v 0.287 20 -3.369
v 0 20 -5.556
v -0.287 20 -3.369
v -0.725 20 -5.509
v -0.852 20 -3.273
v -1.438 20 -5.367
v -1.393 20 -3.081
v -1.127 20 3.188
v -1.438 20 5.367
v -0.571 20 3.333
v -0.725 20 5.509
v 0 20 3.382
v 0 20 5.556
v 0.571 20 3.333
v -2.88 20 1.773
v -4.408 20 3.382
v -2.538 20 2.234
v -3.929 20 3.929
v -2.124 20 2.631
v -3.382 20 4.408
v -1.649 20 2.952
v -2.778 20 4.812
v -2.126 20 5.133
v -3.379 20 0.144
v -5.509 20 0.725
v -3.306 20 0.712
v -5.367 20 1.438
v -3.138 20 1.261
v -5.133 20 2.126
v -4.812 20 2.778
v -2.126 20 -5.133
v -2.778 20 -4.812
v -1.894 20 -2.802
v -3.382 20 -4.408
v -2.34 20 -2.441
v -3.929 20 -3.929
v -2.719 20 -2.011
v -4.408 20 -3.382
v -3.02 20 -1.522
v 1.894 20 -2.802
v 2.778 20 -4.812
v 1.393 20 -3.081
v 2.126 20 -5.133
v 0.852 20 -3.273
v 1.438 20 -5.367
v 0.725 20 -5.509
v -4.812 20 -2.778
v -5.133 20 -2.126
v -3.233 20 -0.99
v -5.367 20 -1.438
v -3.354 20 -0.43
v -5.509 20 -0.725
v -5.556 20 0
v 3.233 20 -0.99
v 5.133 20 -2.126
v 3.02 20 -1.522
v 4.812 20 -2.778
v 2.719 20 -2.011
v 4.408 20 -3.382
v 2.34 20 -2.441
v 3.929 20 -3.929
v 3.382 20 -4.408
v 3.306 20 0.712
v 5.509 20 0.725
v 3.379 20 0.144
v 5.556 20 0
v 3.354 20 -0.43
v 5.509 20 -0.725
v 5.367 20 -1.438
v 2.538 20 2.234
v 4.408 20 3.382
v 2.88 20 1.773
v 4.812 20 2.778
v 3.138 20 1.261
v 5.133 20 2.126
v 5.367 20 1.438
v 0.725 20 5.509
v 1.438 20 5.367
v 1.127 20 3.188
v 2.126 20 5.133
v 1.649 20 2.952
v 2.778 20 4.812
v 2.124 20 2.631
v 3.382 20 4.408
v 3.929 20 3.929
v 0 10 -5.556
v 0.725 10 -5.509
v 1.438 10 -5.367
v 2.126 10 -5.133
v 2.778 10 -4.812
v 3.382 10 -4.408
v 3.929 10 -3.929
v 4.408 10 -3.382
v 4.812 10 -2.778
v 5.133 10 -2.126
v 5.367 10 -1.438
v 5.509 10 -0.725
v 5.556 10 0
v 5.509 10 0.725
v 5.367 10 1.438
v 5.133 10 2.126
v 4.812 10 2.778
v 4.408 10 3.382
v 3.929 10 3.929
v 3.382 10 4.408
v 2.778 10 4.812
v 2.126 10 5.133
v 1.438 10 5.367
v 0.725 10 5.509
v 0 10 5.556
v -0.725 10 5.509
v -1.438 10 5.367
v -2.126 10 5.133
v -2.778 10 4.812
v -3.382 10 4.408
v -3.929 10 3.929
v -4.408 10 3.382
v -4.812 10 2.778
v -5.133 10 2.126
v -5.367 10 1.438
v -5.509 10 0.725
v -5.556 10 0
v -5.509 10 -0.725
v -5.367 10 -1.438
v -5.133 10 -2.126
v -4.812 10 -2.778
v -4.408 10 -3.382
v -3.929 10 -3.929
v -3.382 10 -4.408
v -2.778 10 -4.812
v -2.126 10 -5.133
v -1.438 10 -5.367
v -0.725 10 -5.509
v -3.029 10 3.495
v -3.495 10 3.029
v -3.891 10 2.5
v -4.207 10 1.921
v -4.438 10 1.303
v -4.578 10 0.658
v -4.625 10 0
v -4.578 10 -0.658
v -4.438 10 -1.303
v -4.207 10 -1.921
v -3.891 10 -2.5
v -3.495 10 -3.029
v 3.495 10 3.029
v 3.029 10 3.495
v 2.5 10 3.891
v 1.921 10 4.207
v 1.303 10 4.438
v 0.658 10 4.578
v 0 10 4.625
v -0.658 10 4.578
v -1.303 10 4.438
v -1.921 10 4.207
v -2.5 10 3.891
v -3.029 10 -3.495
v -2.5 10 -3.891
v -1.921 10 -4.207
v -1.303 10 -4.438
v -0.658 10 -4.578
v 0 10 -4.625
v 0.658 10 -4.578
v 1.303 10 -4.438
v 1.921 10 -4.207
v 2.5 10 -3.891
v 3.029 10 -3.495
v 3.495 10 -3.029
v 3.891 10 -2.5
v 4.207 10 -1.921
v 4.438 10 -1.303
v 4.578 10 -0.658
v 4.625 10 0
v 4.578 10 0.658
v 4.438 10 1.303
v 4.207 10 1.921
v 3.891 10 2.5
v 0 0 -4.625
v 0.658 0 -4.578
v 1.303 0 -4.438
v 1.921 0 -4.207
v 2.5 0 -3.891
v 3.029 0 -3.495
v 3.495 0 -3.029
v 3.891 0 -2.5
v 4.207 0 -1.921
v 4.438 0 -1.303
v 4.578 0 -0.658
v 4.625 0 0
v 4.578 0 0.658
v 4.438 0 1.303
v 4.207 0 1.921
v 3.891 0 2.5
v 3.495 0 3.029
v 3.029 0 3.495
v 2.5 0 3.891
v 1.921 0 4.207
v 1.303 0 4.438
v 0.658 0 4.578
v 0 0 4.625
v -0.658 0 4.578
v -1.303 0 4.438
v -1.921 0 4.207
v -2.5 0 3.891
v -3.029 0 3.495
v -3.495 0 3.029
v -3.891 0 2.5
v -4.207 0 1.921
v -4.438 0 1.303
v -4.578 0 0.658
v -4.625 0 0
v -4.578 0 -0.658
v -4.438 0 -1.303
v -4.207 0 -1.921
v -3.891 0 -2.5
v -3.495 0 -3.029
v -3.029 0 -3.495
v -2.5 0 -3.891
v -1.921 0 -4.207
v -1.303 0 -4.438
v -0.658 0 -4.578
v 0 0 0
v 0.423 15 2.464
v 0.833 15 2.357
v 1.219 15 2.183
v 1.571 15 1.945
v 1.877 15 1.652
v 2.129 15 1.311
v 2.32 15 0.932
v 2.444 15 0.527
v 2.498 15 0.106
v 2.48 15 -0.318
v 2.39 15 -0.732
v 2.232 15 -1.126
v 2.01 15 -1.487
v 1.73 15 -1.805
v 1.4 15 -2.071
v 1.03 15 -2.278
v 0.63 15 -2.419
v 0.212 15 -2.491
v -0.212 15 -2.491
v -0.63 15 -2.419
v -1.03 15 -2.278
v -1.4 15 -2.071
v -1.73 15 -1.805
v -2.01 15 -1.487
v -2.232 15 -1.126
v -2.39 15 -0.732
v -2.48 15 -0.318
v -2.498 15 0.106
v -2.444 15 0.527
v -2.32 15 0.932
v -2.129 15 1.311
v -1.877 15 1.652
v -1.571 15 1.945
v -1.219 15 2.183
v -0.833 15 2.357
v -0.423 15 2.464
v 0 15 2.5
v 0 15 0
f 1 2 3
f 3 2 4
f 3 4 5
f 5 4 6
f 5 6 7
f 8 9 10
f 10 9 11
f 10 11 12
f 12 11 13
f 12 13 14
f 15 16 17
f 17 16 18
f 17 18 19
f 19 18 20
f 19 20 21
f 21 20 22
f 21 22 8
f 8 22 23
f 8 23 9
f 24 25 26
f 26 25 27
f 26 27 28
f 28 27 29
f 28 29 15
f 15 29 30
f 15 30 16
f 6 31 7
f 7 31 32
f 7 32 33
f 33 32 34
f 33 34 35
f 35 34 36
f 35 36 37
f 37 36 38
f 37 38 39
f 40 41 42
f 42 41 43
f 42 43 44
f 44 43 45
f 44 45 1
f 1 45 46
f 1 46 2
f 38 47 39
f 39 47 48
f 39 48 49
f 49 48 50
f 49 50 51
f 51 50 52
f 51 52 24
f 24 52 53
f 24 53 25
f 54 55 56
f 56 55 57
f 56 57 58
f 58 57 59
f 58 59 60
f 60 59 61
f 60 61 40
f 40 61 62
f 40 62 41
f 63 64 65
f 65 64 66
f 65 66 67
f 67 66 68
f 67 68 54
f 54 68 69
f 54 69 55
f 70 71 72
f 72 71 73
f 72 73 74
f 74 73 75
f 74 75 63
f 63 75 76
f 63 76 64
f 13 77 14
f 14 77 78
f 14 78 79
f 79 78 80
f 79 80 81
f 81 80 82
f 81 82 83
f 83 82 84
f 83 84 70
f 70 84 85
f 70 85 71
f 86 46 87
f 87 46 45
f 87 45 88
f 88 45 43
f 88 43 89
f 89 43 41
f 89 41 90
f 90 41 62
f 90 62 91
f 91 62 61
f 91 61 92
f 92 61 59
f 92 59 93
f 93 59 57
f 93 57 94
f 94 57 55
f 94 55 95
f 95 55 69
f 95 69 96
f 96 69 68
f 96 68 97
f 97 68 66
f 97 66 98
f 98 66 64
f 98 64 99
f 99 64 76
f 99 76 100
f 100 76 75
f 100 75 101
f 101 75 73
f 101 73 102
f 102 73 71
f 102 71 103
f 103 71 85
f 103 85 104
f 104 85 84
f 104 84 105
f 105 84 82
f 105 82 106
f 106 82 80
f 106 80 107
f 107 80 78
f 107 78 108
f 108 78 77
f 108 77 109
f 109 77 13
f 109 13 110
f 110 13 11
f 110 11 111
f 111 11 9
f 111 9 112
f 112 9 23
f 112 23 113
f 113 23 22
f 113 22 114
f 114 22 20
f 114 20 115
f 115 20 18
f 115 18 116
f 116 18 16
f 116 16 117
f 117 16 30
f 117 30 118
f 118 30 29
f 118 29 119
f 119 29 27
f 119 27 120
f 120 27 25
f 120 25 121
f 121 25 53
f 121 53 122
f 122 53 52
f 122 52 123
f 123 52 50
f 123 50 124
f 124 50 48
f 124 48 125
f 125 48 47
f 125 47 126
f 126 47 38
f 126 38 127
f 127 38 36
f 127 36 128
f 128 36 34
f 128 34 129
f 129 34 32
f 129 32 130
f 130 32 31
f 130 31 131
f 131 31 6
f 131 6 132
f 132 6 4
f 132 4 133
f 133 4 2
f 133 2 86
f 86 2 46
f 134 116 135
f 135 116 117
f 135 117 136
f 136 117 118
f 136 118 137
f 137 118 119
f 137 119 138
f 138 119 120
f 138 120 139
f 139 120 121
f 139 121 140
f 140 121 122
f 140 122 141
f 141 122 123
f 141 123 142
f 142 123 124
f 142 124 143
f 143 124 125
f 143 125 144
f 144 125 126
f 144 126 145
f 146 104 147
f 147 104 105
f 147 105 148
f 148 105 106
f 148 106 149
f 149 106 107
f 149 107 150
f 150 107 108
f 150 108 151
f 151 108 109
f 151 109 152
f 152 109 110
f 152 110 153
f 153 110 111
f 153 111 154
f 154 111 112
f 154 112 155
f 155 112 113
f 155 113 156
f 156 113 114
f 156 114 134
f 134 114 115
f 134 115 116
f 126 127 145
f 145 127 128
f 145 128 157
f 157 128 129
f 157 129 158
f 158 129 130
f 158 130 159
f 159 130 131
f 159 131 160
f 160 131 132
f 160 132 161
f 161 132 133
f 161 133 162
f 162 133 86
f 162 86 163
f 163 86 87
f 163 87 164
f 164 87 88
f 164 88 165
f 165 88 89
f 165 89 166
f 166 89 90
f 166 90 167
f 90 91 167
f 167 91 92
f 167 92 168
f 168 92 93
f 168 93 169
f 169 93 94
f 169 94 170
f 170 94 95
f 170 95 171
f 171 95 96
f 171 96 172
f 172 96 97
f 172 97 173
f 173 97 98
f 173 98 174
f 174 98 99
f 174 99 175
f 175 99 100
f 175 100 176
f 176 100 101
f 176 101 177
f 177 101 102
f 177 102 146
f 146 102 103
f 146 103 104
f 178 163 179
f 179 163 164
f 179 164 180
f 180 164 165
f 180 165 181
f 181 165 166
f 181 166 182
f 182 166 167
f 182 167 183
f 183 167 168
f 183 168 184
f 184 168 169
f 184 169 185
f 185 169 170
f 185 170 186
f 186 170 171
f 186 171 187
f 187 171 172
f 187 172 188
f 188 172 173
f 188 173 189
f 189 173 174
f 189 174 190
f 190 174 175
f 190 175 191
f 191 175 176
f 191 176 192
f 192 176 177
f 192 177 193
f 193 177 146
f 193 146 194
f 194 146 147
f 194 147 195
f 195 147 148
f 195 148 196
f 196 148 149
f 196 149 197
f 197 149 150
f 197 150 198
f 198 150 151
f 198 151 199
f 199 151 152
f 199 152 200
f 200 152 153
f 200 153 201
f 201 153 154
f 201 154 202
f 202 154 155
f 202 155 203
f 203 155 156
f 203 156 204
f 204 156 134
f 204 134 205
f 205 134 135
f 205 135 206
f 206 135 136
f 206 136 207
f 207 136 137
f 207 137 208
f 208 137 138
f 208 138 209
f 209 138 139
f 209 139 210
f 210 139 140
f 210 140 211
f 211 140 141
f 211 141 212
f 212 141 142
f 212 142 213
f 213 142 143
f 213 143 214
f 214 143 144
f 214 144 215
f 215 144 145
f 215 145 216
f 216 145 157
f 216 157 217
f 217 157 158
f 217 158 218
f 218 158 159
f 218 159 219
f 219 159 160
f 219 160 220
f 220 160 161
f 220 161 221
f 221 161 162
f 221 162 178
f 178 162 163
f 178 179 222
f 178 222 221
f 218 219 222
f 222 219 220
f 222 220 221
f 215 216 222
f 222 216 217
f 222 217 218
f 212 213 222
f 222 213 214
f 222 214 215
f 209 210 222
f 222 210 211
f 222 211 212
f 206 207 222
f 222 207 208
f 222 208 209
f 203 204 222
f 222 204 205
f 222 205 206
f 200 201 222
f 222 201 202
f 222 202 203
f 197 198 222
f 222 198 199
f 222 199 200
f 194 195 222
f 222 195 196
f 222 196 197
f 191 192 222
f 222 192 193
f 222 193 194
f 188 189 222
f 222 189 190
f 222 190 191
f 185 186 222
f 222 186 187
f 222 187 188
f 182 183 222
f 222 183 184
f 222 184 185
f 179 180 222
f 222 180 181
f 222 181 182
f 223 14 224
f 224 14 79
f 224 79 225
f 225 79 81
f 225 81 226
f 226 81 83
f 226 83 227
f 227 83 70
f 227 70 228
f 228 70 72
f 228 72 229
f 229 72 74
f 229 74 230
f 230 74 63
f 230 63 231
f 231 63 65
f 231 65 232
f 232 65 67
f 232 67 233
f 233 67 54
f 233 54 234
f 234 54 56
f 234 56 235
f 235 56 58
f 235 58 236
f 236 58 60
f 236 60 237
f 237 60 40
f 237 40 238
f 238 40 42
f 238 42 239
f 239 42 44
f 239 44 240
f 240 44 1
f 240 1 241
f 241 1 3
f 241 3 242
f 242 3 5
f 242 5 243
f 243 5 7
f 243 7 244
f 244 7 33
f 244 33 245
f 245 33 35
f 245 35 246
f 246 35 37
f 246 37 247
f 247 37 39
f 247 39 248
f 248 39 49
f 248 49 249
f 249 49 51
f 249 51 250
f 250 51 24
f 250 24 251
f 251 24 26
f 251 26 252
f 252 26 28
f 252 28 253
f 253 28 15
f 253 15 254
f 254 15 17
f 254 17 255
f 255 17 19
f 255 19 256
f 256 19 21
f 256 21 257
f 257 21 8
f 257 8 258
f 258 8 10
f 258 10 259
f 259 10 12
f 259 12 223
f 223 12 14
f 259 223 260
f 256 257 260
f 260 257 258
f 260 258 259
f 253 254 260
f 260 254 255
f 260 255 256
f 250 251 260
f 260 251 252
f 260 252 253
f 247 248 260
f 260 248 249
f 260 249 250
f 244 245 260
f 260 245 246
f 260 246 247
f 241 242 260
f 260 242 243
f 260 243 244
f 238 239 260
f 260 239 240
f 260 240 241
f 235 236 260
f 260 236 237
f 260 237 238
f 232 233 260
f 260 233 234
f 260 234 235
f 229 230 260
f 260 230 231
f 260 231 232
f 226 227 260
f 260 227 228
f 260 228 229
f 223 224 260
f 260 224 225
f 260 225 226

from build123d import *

# Parameters (mm, degrees)
SKETCH2_R          = 2.5
CUT_EXTRUDE1_DEPTH = 5
DRAFT1_ANGLE       = 10


with BuildPart() as part:
    # Sketch1 → Revolve1 (revolve)
    with BuildSketch(Plane.XY, mode=Mode.PRIVATE) as revolve1_sk:
        Polygon((0, 20), (5.55625, 20), (5.55625, 10), (4.625, 10), (4.625, 0), (0, 0), align=None)
    revolve(revolve1_sk.sketch.rotate(Axis((0, 0, 0), (0, 1, 0)), 90), axis=Axis((0, 0, 0), (0, 1, 0)))

    # Sketch2 → Cut-Extrude1 (cut)
    with BuildSketch(Plane(origin=(0, 20, 0), x_dir=(1, 0, 0), z_dir=(0, 1, 0))):
        with Locations(Location((0, 0, 0), (0, 0, 270))):
            Circle(SKETCH2_R)
    extrude(amount=-CUT_EXTRUDE1_DEPTH, mode=Mode.SUBTRACT)

    # Draft1
    draft1_faces = [part.faces().sort_by_distance(p)[0] for p in [
        (0, 17.5, -2.5),
    ]]
    draft(draft1_faces, Plane.ZX.offset(15), DRAFT1_ANGLE)


solid = part.part
